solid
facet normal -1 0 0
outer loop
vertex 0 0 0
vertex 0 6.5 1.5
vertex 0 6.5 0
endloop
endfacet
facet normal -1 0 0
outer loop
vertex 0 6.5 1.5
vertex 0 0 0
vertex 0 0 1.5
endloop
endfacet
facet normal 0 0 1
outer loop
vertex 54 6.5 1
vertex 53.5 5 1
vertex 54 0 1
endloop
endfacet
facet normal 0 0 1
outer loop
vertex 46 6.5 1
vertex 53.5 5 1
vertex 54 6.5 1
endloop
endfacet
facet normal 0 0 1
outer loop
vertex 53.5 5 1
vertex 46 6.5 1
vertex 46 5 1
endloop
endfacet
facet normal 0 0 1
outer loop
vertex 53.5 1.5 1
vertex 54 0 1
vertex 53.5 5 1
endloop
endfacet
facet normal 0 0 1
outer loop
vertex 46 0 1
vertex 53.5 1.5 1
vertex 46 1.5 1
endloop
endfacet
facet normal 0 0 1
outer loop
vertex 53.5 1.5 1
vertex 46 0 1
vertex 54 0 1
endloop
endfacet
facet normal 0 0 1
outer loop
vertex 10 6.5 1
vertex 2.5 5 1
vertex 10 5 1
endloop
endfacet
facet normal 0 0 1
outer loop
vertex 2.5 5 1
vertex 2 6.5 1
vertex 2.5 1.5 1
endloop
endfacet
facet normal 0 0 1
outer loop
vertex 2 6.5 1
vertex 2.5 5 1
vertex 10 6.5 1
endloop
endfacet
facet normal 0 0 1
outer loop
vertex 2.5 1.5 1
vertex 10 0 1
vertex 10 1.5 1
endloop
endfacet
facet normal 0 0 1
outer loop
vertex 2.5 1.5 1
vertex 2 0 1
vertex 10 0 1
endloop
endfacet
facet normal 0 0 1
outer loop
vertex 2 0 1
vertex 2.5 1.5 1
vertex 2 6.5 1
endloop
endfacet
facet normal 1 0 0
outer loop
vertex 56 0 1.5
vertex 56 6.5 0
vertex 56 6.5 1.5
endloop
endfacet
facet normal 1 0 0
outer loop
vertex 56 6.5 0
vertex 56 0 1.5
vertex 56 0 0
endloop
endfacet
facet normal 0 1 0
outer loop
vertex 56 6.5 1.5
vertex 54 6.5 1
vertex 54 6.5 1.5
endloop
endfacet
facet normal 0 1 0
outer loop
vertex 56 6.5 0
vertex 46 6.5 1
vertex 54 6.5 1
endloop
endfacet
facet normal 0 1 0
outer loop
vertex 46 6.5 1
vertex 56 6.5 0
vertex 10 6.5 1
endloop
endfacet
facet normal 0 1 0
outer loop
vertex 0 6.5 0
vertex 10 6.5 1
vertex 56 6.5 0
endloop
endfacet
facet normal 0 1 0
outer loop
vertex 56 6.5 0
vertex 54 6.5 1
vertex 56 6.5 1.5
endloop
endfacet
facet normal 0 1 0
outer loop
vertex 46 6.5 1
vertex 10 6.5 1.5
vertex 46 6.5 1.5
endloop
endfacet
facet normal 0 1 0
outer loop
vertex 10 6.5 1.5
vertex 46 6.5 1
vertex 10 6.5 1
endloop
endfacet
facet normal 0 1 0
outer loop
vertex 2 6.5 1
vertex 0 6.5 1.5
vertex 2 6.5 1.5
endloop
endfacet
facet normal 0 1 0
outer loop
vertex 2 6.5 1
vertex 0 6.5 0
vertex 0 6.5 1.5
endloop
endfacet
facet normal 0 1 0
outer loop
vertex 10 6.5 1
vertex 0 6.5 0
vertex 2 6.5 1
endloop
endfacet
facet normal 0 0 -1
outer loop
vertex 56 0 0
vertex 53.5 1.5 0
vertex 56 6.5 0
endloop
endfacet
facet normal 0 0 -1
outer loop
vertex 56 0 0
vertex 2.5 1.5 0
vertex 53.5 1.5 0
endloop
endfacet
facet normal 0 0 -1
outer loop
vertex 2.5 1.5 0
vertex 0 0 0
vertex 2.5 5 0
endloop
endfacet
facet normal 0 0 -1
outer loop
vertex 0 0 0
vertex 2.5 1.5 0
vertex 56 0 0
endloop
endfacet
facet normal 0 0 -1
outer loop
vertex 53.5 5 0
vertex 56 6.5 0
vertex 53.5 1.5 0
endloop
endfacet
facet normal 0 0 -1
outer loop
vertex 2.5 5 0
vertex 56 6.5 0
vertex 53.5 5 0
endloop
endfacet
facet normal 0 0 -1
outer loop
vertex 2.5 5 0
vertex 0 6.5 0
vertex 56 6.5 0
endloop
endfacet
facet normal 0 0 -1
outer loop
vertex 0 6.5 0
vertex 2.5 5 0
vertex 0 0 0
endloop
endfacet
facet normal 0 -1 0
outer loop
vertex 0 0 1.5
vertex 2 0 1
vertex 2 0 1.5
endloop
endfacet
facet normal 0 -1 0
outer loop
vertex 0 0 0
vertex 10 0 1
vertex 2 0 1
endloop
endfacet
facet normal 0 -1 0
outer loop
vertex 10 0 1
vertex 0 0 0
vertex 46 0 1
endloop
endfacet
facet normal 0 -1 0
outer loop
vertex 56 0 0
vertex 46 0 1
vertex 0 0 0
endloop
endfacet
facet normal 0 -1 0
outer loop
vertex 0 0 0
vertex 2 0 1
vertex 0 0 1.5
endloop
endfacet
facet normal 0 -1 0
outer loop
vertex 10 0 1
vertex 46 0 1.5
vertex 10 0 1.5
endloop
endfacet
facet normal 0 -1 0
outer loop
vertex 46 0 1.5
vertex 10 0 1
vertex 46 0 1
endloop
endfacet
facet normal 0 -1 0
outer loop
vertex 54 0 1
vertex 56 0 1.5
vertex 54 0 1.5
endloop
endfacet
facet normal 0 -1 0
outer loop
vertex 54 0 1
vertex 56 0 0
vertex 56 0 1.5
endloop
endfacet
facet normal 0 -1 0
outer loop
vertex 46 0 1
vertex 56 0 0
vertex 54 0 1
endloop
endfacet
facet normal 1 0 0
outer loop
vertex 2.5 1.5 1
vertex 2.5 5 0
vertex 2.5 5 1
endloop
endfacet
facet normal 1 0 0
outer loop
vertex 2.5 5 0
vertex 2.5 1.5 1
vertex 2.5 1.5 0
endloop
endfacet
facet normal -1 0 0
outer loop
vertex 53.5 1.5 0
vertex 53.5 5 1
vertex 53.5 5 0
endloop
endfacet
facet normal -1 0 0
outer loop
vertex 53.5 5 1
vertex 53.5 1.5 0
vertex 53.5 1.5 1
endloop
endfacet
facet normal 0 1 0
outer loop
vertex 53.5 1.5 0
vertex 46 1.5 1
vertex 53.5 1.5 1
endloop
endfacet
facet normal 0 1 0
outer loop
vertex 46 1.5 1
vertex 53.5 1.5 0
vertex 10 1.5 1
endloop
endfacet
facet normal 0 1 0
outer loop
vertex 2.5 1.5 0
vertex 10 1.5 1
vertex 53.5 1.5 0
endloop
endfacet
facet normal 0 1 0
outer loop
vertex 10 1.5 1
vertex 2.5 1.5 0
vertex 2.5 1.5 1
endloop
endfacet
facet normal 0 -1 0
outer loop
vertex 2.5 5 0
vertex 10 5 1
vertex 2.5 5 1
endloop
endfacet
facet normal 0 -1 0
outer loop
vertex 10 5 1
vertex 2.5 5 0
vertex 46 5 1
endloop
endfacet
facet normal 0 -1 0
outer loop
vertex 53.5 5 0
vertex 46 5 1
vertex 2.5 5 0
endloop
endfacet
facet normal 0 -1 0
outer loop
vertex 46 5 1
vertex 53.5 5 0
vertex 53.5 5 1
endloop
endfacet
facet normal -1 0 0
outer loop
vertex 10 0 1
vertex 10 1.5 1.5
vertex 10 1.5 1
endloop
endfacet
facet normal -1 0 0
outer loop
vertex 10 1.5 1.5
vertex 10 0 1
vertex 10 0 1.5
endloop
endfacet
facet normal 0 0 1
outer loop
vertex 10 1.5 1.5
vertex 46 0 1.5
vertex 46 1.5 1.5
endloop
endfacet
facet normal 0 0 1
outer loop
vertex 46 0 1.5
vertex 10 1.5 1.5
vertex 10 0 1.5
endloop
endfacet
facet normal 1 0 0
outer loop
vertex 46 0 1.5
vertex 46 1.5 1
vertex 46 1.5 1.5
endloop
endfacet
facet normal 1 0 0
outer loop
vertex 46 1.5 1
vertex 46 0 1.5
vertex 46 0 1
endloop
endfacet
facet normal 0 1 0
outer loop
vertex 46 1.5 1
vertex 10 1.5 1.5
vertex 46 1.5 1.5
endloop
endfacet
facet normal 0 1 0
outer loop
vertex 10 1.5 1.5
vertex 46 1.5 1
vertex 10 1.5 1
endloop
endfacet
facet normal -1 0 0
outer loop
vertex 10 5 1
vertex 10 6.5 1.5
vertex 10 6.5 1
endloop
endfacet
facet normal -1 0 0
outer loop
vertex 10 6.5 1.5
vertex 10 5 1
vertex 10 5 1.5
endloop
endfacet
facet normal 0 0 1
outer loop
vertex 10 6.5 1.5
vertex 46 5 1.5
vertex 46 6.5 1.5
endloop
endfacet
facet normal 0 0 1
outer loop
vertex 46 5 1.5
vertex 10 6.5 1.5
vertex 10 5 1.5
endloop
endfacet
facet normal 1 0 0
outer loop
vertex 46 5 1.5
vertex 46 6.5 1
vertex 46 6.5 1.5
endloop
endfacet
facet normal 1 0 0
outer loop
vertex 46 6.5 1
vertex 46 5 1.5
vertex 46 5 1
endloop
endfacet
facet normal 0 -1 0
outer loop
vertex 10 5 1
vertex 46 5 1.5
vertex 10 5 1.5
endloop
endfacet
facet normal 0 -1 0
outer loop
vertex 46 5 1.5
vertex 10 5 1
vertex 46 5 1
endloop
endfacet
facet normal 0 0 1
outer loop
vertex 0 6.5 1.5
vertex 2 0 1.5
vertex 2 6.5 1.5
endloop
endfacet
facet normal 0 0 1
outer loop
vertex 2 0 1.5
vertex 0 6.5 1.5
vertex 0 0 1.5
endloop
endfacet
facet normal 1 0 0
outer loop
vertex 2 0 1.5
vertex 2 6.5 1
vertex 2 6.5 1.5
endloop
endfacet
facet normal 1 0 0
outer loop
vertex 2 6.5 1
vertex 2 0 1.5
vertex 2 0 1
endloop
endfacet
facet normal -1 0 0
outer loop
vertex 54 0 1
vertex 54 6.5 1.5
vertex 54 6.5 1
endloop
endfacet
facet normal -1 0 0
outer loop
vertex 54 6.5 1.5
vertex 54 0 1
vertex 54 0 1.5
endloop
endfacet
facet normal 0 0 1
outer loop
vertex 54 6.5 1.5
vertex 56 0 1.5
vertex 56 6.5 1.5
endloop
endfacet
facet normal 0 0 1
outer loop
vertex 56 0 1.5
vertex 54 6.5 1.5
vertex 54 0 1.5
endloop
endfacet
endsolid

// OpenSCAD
module small_stick_mate()
{
    full_length = 56;
    full_width = 6.5;
    void_length = 51;
    void_width = full_width-3;
    thickness = 1;
    union(){
        // Main body of the part
        difference() {
            cube(size=[full_length,full_width,thickness]);
            void_x = (full_length - void_length)/2;
            void_y = (full_width -void_width)/2;
            translate([void_x,void_y,-1]) cube(size=[void_length,void_width,10]);
        }
       
       // Spacers
       spacer_height = 0.5;
       spacer_length = 2;
       spacer_width = 6.5;
       spacer_x = full_length-spacer_length;
       spacer_y = (full_width-void_width)/2 + void_width;
       translate([10,0,1]) cube(size=[36,1.5,spacer_height]);
       translate([10,5,1]) cube(size=[36,1.5,spacer_height]);
       
       translate([0,0,1]) cube(size=[spacer_length,spacer_width,spacer_height]);
       translate([spacer_x,0,1]) cube(size=[spacer_length,spacer_width,spacer_height]); 
    }
}

small_stick_mate();
